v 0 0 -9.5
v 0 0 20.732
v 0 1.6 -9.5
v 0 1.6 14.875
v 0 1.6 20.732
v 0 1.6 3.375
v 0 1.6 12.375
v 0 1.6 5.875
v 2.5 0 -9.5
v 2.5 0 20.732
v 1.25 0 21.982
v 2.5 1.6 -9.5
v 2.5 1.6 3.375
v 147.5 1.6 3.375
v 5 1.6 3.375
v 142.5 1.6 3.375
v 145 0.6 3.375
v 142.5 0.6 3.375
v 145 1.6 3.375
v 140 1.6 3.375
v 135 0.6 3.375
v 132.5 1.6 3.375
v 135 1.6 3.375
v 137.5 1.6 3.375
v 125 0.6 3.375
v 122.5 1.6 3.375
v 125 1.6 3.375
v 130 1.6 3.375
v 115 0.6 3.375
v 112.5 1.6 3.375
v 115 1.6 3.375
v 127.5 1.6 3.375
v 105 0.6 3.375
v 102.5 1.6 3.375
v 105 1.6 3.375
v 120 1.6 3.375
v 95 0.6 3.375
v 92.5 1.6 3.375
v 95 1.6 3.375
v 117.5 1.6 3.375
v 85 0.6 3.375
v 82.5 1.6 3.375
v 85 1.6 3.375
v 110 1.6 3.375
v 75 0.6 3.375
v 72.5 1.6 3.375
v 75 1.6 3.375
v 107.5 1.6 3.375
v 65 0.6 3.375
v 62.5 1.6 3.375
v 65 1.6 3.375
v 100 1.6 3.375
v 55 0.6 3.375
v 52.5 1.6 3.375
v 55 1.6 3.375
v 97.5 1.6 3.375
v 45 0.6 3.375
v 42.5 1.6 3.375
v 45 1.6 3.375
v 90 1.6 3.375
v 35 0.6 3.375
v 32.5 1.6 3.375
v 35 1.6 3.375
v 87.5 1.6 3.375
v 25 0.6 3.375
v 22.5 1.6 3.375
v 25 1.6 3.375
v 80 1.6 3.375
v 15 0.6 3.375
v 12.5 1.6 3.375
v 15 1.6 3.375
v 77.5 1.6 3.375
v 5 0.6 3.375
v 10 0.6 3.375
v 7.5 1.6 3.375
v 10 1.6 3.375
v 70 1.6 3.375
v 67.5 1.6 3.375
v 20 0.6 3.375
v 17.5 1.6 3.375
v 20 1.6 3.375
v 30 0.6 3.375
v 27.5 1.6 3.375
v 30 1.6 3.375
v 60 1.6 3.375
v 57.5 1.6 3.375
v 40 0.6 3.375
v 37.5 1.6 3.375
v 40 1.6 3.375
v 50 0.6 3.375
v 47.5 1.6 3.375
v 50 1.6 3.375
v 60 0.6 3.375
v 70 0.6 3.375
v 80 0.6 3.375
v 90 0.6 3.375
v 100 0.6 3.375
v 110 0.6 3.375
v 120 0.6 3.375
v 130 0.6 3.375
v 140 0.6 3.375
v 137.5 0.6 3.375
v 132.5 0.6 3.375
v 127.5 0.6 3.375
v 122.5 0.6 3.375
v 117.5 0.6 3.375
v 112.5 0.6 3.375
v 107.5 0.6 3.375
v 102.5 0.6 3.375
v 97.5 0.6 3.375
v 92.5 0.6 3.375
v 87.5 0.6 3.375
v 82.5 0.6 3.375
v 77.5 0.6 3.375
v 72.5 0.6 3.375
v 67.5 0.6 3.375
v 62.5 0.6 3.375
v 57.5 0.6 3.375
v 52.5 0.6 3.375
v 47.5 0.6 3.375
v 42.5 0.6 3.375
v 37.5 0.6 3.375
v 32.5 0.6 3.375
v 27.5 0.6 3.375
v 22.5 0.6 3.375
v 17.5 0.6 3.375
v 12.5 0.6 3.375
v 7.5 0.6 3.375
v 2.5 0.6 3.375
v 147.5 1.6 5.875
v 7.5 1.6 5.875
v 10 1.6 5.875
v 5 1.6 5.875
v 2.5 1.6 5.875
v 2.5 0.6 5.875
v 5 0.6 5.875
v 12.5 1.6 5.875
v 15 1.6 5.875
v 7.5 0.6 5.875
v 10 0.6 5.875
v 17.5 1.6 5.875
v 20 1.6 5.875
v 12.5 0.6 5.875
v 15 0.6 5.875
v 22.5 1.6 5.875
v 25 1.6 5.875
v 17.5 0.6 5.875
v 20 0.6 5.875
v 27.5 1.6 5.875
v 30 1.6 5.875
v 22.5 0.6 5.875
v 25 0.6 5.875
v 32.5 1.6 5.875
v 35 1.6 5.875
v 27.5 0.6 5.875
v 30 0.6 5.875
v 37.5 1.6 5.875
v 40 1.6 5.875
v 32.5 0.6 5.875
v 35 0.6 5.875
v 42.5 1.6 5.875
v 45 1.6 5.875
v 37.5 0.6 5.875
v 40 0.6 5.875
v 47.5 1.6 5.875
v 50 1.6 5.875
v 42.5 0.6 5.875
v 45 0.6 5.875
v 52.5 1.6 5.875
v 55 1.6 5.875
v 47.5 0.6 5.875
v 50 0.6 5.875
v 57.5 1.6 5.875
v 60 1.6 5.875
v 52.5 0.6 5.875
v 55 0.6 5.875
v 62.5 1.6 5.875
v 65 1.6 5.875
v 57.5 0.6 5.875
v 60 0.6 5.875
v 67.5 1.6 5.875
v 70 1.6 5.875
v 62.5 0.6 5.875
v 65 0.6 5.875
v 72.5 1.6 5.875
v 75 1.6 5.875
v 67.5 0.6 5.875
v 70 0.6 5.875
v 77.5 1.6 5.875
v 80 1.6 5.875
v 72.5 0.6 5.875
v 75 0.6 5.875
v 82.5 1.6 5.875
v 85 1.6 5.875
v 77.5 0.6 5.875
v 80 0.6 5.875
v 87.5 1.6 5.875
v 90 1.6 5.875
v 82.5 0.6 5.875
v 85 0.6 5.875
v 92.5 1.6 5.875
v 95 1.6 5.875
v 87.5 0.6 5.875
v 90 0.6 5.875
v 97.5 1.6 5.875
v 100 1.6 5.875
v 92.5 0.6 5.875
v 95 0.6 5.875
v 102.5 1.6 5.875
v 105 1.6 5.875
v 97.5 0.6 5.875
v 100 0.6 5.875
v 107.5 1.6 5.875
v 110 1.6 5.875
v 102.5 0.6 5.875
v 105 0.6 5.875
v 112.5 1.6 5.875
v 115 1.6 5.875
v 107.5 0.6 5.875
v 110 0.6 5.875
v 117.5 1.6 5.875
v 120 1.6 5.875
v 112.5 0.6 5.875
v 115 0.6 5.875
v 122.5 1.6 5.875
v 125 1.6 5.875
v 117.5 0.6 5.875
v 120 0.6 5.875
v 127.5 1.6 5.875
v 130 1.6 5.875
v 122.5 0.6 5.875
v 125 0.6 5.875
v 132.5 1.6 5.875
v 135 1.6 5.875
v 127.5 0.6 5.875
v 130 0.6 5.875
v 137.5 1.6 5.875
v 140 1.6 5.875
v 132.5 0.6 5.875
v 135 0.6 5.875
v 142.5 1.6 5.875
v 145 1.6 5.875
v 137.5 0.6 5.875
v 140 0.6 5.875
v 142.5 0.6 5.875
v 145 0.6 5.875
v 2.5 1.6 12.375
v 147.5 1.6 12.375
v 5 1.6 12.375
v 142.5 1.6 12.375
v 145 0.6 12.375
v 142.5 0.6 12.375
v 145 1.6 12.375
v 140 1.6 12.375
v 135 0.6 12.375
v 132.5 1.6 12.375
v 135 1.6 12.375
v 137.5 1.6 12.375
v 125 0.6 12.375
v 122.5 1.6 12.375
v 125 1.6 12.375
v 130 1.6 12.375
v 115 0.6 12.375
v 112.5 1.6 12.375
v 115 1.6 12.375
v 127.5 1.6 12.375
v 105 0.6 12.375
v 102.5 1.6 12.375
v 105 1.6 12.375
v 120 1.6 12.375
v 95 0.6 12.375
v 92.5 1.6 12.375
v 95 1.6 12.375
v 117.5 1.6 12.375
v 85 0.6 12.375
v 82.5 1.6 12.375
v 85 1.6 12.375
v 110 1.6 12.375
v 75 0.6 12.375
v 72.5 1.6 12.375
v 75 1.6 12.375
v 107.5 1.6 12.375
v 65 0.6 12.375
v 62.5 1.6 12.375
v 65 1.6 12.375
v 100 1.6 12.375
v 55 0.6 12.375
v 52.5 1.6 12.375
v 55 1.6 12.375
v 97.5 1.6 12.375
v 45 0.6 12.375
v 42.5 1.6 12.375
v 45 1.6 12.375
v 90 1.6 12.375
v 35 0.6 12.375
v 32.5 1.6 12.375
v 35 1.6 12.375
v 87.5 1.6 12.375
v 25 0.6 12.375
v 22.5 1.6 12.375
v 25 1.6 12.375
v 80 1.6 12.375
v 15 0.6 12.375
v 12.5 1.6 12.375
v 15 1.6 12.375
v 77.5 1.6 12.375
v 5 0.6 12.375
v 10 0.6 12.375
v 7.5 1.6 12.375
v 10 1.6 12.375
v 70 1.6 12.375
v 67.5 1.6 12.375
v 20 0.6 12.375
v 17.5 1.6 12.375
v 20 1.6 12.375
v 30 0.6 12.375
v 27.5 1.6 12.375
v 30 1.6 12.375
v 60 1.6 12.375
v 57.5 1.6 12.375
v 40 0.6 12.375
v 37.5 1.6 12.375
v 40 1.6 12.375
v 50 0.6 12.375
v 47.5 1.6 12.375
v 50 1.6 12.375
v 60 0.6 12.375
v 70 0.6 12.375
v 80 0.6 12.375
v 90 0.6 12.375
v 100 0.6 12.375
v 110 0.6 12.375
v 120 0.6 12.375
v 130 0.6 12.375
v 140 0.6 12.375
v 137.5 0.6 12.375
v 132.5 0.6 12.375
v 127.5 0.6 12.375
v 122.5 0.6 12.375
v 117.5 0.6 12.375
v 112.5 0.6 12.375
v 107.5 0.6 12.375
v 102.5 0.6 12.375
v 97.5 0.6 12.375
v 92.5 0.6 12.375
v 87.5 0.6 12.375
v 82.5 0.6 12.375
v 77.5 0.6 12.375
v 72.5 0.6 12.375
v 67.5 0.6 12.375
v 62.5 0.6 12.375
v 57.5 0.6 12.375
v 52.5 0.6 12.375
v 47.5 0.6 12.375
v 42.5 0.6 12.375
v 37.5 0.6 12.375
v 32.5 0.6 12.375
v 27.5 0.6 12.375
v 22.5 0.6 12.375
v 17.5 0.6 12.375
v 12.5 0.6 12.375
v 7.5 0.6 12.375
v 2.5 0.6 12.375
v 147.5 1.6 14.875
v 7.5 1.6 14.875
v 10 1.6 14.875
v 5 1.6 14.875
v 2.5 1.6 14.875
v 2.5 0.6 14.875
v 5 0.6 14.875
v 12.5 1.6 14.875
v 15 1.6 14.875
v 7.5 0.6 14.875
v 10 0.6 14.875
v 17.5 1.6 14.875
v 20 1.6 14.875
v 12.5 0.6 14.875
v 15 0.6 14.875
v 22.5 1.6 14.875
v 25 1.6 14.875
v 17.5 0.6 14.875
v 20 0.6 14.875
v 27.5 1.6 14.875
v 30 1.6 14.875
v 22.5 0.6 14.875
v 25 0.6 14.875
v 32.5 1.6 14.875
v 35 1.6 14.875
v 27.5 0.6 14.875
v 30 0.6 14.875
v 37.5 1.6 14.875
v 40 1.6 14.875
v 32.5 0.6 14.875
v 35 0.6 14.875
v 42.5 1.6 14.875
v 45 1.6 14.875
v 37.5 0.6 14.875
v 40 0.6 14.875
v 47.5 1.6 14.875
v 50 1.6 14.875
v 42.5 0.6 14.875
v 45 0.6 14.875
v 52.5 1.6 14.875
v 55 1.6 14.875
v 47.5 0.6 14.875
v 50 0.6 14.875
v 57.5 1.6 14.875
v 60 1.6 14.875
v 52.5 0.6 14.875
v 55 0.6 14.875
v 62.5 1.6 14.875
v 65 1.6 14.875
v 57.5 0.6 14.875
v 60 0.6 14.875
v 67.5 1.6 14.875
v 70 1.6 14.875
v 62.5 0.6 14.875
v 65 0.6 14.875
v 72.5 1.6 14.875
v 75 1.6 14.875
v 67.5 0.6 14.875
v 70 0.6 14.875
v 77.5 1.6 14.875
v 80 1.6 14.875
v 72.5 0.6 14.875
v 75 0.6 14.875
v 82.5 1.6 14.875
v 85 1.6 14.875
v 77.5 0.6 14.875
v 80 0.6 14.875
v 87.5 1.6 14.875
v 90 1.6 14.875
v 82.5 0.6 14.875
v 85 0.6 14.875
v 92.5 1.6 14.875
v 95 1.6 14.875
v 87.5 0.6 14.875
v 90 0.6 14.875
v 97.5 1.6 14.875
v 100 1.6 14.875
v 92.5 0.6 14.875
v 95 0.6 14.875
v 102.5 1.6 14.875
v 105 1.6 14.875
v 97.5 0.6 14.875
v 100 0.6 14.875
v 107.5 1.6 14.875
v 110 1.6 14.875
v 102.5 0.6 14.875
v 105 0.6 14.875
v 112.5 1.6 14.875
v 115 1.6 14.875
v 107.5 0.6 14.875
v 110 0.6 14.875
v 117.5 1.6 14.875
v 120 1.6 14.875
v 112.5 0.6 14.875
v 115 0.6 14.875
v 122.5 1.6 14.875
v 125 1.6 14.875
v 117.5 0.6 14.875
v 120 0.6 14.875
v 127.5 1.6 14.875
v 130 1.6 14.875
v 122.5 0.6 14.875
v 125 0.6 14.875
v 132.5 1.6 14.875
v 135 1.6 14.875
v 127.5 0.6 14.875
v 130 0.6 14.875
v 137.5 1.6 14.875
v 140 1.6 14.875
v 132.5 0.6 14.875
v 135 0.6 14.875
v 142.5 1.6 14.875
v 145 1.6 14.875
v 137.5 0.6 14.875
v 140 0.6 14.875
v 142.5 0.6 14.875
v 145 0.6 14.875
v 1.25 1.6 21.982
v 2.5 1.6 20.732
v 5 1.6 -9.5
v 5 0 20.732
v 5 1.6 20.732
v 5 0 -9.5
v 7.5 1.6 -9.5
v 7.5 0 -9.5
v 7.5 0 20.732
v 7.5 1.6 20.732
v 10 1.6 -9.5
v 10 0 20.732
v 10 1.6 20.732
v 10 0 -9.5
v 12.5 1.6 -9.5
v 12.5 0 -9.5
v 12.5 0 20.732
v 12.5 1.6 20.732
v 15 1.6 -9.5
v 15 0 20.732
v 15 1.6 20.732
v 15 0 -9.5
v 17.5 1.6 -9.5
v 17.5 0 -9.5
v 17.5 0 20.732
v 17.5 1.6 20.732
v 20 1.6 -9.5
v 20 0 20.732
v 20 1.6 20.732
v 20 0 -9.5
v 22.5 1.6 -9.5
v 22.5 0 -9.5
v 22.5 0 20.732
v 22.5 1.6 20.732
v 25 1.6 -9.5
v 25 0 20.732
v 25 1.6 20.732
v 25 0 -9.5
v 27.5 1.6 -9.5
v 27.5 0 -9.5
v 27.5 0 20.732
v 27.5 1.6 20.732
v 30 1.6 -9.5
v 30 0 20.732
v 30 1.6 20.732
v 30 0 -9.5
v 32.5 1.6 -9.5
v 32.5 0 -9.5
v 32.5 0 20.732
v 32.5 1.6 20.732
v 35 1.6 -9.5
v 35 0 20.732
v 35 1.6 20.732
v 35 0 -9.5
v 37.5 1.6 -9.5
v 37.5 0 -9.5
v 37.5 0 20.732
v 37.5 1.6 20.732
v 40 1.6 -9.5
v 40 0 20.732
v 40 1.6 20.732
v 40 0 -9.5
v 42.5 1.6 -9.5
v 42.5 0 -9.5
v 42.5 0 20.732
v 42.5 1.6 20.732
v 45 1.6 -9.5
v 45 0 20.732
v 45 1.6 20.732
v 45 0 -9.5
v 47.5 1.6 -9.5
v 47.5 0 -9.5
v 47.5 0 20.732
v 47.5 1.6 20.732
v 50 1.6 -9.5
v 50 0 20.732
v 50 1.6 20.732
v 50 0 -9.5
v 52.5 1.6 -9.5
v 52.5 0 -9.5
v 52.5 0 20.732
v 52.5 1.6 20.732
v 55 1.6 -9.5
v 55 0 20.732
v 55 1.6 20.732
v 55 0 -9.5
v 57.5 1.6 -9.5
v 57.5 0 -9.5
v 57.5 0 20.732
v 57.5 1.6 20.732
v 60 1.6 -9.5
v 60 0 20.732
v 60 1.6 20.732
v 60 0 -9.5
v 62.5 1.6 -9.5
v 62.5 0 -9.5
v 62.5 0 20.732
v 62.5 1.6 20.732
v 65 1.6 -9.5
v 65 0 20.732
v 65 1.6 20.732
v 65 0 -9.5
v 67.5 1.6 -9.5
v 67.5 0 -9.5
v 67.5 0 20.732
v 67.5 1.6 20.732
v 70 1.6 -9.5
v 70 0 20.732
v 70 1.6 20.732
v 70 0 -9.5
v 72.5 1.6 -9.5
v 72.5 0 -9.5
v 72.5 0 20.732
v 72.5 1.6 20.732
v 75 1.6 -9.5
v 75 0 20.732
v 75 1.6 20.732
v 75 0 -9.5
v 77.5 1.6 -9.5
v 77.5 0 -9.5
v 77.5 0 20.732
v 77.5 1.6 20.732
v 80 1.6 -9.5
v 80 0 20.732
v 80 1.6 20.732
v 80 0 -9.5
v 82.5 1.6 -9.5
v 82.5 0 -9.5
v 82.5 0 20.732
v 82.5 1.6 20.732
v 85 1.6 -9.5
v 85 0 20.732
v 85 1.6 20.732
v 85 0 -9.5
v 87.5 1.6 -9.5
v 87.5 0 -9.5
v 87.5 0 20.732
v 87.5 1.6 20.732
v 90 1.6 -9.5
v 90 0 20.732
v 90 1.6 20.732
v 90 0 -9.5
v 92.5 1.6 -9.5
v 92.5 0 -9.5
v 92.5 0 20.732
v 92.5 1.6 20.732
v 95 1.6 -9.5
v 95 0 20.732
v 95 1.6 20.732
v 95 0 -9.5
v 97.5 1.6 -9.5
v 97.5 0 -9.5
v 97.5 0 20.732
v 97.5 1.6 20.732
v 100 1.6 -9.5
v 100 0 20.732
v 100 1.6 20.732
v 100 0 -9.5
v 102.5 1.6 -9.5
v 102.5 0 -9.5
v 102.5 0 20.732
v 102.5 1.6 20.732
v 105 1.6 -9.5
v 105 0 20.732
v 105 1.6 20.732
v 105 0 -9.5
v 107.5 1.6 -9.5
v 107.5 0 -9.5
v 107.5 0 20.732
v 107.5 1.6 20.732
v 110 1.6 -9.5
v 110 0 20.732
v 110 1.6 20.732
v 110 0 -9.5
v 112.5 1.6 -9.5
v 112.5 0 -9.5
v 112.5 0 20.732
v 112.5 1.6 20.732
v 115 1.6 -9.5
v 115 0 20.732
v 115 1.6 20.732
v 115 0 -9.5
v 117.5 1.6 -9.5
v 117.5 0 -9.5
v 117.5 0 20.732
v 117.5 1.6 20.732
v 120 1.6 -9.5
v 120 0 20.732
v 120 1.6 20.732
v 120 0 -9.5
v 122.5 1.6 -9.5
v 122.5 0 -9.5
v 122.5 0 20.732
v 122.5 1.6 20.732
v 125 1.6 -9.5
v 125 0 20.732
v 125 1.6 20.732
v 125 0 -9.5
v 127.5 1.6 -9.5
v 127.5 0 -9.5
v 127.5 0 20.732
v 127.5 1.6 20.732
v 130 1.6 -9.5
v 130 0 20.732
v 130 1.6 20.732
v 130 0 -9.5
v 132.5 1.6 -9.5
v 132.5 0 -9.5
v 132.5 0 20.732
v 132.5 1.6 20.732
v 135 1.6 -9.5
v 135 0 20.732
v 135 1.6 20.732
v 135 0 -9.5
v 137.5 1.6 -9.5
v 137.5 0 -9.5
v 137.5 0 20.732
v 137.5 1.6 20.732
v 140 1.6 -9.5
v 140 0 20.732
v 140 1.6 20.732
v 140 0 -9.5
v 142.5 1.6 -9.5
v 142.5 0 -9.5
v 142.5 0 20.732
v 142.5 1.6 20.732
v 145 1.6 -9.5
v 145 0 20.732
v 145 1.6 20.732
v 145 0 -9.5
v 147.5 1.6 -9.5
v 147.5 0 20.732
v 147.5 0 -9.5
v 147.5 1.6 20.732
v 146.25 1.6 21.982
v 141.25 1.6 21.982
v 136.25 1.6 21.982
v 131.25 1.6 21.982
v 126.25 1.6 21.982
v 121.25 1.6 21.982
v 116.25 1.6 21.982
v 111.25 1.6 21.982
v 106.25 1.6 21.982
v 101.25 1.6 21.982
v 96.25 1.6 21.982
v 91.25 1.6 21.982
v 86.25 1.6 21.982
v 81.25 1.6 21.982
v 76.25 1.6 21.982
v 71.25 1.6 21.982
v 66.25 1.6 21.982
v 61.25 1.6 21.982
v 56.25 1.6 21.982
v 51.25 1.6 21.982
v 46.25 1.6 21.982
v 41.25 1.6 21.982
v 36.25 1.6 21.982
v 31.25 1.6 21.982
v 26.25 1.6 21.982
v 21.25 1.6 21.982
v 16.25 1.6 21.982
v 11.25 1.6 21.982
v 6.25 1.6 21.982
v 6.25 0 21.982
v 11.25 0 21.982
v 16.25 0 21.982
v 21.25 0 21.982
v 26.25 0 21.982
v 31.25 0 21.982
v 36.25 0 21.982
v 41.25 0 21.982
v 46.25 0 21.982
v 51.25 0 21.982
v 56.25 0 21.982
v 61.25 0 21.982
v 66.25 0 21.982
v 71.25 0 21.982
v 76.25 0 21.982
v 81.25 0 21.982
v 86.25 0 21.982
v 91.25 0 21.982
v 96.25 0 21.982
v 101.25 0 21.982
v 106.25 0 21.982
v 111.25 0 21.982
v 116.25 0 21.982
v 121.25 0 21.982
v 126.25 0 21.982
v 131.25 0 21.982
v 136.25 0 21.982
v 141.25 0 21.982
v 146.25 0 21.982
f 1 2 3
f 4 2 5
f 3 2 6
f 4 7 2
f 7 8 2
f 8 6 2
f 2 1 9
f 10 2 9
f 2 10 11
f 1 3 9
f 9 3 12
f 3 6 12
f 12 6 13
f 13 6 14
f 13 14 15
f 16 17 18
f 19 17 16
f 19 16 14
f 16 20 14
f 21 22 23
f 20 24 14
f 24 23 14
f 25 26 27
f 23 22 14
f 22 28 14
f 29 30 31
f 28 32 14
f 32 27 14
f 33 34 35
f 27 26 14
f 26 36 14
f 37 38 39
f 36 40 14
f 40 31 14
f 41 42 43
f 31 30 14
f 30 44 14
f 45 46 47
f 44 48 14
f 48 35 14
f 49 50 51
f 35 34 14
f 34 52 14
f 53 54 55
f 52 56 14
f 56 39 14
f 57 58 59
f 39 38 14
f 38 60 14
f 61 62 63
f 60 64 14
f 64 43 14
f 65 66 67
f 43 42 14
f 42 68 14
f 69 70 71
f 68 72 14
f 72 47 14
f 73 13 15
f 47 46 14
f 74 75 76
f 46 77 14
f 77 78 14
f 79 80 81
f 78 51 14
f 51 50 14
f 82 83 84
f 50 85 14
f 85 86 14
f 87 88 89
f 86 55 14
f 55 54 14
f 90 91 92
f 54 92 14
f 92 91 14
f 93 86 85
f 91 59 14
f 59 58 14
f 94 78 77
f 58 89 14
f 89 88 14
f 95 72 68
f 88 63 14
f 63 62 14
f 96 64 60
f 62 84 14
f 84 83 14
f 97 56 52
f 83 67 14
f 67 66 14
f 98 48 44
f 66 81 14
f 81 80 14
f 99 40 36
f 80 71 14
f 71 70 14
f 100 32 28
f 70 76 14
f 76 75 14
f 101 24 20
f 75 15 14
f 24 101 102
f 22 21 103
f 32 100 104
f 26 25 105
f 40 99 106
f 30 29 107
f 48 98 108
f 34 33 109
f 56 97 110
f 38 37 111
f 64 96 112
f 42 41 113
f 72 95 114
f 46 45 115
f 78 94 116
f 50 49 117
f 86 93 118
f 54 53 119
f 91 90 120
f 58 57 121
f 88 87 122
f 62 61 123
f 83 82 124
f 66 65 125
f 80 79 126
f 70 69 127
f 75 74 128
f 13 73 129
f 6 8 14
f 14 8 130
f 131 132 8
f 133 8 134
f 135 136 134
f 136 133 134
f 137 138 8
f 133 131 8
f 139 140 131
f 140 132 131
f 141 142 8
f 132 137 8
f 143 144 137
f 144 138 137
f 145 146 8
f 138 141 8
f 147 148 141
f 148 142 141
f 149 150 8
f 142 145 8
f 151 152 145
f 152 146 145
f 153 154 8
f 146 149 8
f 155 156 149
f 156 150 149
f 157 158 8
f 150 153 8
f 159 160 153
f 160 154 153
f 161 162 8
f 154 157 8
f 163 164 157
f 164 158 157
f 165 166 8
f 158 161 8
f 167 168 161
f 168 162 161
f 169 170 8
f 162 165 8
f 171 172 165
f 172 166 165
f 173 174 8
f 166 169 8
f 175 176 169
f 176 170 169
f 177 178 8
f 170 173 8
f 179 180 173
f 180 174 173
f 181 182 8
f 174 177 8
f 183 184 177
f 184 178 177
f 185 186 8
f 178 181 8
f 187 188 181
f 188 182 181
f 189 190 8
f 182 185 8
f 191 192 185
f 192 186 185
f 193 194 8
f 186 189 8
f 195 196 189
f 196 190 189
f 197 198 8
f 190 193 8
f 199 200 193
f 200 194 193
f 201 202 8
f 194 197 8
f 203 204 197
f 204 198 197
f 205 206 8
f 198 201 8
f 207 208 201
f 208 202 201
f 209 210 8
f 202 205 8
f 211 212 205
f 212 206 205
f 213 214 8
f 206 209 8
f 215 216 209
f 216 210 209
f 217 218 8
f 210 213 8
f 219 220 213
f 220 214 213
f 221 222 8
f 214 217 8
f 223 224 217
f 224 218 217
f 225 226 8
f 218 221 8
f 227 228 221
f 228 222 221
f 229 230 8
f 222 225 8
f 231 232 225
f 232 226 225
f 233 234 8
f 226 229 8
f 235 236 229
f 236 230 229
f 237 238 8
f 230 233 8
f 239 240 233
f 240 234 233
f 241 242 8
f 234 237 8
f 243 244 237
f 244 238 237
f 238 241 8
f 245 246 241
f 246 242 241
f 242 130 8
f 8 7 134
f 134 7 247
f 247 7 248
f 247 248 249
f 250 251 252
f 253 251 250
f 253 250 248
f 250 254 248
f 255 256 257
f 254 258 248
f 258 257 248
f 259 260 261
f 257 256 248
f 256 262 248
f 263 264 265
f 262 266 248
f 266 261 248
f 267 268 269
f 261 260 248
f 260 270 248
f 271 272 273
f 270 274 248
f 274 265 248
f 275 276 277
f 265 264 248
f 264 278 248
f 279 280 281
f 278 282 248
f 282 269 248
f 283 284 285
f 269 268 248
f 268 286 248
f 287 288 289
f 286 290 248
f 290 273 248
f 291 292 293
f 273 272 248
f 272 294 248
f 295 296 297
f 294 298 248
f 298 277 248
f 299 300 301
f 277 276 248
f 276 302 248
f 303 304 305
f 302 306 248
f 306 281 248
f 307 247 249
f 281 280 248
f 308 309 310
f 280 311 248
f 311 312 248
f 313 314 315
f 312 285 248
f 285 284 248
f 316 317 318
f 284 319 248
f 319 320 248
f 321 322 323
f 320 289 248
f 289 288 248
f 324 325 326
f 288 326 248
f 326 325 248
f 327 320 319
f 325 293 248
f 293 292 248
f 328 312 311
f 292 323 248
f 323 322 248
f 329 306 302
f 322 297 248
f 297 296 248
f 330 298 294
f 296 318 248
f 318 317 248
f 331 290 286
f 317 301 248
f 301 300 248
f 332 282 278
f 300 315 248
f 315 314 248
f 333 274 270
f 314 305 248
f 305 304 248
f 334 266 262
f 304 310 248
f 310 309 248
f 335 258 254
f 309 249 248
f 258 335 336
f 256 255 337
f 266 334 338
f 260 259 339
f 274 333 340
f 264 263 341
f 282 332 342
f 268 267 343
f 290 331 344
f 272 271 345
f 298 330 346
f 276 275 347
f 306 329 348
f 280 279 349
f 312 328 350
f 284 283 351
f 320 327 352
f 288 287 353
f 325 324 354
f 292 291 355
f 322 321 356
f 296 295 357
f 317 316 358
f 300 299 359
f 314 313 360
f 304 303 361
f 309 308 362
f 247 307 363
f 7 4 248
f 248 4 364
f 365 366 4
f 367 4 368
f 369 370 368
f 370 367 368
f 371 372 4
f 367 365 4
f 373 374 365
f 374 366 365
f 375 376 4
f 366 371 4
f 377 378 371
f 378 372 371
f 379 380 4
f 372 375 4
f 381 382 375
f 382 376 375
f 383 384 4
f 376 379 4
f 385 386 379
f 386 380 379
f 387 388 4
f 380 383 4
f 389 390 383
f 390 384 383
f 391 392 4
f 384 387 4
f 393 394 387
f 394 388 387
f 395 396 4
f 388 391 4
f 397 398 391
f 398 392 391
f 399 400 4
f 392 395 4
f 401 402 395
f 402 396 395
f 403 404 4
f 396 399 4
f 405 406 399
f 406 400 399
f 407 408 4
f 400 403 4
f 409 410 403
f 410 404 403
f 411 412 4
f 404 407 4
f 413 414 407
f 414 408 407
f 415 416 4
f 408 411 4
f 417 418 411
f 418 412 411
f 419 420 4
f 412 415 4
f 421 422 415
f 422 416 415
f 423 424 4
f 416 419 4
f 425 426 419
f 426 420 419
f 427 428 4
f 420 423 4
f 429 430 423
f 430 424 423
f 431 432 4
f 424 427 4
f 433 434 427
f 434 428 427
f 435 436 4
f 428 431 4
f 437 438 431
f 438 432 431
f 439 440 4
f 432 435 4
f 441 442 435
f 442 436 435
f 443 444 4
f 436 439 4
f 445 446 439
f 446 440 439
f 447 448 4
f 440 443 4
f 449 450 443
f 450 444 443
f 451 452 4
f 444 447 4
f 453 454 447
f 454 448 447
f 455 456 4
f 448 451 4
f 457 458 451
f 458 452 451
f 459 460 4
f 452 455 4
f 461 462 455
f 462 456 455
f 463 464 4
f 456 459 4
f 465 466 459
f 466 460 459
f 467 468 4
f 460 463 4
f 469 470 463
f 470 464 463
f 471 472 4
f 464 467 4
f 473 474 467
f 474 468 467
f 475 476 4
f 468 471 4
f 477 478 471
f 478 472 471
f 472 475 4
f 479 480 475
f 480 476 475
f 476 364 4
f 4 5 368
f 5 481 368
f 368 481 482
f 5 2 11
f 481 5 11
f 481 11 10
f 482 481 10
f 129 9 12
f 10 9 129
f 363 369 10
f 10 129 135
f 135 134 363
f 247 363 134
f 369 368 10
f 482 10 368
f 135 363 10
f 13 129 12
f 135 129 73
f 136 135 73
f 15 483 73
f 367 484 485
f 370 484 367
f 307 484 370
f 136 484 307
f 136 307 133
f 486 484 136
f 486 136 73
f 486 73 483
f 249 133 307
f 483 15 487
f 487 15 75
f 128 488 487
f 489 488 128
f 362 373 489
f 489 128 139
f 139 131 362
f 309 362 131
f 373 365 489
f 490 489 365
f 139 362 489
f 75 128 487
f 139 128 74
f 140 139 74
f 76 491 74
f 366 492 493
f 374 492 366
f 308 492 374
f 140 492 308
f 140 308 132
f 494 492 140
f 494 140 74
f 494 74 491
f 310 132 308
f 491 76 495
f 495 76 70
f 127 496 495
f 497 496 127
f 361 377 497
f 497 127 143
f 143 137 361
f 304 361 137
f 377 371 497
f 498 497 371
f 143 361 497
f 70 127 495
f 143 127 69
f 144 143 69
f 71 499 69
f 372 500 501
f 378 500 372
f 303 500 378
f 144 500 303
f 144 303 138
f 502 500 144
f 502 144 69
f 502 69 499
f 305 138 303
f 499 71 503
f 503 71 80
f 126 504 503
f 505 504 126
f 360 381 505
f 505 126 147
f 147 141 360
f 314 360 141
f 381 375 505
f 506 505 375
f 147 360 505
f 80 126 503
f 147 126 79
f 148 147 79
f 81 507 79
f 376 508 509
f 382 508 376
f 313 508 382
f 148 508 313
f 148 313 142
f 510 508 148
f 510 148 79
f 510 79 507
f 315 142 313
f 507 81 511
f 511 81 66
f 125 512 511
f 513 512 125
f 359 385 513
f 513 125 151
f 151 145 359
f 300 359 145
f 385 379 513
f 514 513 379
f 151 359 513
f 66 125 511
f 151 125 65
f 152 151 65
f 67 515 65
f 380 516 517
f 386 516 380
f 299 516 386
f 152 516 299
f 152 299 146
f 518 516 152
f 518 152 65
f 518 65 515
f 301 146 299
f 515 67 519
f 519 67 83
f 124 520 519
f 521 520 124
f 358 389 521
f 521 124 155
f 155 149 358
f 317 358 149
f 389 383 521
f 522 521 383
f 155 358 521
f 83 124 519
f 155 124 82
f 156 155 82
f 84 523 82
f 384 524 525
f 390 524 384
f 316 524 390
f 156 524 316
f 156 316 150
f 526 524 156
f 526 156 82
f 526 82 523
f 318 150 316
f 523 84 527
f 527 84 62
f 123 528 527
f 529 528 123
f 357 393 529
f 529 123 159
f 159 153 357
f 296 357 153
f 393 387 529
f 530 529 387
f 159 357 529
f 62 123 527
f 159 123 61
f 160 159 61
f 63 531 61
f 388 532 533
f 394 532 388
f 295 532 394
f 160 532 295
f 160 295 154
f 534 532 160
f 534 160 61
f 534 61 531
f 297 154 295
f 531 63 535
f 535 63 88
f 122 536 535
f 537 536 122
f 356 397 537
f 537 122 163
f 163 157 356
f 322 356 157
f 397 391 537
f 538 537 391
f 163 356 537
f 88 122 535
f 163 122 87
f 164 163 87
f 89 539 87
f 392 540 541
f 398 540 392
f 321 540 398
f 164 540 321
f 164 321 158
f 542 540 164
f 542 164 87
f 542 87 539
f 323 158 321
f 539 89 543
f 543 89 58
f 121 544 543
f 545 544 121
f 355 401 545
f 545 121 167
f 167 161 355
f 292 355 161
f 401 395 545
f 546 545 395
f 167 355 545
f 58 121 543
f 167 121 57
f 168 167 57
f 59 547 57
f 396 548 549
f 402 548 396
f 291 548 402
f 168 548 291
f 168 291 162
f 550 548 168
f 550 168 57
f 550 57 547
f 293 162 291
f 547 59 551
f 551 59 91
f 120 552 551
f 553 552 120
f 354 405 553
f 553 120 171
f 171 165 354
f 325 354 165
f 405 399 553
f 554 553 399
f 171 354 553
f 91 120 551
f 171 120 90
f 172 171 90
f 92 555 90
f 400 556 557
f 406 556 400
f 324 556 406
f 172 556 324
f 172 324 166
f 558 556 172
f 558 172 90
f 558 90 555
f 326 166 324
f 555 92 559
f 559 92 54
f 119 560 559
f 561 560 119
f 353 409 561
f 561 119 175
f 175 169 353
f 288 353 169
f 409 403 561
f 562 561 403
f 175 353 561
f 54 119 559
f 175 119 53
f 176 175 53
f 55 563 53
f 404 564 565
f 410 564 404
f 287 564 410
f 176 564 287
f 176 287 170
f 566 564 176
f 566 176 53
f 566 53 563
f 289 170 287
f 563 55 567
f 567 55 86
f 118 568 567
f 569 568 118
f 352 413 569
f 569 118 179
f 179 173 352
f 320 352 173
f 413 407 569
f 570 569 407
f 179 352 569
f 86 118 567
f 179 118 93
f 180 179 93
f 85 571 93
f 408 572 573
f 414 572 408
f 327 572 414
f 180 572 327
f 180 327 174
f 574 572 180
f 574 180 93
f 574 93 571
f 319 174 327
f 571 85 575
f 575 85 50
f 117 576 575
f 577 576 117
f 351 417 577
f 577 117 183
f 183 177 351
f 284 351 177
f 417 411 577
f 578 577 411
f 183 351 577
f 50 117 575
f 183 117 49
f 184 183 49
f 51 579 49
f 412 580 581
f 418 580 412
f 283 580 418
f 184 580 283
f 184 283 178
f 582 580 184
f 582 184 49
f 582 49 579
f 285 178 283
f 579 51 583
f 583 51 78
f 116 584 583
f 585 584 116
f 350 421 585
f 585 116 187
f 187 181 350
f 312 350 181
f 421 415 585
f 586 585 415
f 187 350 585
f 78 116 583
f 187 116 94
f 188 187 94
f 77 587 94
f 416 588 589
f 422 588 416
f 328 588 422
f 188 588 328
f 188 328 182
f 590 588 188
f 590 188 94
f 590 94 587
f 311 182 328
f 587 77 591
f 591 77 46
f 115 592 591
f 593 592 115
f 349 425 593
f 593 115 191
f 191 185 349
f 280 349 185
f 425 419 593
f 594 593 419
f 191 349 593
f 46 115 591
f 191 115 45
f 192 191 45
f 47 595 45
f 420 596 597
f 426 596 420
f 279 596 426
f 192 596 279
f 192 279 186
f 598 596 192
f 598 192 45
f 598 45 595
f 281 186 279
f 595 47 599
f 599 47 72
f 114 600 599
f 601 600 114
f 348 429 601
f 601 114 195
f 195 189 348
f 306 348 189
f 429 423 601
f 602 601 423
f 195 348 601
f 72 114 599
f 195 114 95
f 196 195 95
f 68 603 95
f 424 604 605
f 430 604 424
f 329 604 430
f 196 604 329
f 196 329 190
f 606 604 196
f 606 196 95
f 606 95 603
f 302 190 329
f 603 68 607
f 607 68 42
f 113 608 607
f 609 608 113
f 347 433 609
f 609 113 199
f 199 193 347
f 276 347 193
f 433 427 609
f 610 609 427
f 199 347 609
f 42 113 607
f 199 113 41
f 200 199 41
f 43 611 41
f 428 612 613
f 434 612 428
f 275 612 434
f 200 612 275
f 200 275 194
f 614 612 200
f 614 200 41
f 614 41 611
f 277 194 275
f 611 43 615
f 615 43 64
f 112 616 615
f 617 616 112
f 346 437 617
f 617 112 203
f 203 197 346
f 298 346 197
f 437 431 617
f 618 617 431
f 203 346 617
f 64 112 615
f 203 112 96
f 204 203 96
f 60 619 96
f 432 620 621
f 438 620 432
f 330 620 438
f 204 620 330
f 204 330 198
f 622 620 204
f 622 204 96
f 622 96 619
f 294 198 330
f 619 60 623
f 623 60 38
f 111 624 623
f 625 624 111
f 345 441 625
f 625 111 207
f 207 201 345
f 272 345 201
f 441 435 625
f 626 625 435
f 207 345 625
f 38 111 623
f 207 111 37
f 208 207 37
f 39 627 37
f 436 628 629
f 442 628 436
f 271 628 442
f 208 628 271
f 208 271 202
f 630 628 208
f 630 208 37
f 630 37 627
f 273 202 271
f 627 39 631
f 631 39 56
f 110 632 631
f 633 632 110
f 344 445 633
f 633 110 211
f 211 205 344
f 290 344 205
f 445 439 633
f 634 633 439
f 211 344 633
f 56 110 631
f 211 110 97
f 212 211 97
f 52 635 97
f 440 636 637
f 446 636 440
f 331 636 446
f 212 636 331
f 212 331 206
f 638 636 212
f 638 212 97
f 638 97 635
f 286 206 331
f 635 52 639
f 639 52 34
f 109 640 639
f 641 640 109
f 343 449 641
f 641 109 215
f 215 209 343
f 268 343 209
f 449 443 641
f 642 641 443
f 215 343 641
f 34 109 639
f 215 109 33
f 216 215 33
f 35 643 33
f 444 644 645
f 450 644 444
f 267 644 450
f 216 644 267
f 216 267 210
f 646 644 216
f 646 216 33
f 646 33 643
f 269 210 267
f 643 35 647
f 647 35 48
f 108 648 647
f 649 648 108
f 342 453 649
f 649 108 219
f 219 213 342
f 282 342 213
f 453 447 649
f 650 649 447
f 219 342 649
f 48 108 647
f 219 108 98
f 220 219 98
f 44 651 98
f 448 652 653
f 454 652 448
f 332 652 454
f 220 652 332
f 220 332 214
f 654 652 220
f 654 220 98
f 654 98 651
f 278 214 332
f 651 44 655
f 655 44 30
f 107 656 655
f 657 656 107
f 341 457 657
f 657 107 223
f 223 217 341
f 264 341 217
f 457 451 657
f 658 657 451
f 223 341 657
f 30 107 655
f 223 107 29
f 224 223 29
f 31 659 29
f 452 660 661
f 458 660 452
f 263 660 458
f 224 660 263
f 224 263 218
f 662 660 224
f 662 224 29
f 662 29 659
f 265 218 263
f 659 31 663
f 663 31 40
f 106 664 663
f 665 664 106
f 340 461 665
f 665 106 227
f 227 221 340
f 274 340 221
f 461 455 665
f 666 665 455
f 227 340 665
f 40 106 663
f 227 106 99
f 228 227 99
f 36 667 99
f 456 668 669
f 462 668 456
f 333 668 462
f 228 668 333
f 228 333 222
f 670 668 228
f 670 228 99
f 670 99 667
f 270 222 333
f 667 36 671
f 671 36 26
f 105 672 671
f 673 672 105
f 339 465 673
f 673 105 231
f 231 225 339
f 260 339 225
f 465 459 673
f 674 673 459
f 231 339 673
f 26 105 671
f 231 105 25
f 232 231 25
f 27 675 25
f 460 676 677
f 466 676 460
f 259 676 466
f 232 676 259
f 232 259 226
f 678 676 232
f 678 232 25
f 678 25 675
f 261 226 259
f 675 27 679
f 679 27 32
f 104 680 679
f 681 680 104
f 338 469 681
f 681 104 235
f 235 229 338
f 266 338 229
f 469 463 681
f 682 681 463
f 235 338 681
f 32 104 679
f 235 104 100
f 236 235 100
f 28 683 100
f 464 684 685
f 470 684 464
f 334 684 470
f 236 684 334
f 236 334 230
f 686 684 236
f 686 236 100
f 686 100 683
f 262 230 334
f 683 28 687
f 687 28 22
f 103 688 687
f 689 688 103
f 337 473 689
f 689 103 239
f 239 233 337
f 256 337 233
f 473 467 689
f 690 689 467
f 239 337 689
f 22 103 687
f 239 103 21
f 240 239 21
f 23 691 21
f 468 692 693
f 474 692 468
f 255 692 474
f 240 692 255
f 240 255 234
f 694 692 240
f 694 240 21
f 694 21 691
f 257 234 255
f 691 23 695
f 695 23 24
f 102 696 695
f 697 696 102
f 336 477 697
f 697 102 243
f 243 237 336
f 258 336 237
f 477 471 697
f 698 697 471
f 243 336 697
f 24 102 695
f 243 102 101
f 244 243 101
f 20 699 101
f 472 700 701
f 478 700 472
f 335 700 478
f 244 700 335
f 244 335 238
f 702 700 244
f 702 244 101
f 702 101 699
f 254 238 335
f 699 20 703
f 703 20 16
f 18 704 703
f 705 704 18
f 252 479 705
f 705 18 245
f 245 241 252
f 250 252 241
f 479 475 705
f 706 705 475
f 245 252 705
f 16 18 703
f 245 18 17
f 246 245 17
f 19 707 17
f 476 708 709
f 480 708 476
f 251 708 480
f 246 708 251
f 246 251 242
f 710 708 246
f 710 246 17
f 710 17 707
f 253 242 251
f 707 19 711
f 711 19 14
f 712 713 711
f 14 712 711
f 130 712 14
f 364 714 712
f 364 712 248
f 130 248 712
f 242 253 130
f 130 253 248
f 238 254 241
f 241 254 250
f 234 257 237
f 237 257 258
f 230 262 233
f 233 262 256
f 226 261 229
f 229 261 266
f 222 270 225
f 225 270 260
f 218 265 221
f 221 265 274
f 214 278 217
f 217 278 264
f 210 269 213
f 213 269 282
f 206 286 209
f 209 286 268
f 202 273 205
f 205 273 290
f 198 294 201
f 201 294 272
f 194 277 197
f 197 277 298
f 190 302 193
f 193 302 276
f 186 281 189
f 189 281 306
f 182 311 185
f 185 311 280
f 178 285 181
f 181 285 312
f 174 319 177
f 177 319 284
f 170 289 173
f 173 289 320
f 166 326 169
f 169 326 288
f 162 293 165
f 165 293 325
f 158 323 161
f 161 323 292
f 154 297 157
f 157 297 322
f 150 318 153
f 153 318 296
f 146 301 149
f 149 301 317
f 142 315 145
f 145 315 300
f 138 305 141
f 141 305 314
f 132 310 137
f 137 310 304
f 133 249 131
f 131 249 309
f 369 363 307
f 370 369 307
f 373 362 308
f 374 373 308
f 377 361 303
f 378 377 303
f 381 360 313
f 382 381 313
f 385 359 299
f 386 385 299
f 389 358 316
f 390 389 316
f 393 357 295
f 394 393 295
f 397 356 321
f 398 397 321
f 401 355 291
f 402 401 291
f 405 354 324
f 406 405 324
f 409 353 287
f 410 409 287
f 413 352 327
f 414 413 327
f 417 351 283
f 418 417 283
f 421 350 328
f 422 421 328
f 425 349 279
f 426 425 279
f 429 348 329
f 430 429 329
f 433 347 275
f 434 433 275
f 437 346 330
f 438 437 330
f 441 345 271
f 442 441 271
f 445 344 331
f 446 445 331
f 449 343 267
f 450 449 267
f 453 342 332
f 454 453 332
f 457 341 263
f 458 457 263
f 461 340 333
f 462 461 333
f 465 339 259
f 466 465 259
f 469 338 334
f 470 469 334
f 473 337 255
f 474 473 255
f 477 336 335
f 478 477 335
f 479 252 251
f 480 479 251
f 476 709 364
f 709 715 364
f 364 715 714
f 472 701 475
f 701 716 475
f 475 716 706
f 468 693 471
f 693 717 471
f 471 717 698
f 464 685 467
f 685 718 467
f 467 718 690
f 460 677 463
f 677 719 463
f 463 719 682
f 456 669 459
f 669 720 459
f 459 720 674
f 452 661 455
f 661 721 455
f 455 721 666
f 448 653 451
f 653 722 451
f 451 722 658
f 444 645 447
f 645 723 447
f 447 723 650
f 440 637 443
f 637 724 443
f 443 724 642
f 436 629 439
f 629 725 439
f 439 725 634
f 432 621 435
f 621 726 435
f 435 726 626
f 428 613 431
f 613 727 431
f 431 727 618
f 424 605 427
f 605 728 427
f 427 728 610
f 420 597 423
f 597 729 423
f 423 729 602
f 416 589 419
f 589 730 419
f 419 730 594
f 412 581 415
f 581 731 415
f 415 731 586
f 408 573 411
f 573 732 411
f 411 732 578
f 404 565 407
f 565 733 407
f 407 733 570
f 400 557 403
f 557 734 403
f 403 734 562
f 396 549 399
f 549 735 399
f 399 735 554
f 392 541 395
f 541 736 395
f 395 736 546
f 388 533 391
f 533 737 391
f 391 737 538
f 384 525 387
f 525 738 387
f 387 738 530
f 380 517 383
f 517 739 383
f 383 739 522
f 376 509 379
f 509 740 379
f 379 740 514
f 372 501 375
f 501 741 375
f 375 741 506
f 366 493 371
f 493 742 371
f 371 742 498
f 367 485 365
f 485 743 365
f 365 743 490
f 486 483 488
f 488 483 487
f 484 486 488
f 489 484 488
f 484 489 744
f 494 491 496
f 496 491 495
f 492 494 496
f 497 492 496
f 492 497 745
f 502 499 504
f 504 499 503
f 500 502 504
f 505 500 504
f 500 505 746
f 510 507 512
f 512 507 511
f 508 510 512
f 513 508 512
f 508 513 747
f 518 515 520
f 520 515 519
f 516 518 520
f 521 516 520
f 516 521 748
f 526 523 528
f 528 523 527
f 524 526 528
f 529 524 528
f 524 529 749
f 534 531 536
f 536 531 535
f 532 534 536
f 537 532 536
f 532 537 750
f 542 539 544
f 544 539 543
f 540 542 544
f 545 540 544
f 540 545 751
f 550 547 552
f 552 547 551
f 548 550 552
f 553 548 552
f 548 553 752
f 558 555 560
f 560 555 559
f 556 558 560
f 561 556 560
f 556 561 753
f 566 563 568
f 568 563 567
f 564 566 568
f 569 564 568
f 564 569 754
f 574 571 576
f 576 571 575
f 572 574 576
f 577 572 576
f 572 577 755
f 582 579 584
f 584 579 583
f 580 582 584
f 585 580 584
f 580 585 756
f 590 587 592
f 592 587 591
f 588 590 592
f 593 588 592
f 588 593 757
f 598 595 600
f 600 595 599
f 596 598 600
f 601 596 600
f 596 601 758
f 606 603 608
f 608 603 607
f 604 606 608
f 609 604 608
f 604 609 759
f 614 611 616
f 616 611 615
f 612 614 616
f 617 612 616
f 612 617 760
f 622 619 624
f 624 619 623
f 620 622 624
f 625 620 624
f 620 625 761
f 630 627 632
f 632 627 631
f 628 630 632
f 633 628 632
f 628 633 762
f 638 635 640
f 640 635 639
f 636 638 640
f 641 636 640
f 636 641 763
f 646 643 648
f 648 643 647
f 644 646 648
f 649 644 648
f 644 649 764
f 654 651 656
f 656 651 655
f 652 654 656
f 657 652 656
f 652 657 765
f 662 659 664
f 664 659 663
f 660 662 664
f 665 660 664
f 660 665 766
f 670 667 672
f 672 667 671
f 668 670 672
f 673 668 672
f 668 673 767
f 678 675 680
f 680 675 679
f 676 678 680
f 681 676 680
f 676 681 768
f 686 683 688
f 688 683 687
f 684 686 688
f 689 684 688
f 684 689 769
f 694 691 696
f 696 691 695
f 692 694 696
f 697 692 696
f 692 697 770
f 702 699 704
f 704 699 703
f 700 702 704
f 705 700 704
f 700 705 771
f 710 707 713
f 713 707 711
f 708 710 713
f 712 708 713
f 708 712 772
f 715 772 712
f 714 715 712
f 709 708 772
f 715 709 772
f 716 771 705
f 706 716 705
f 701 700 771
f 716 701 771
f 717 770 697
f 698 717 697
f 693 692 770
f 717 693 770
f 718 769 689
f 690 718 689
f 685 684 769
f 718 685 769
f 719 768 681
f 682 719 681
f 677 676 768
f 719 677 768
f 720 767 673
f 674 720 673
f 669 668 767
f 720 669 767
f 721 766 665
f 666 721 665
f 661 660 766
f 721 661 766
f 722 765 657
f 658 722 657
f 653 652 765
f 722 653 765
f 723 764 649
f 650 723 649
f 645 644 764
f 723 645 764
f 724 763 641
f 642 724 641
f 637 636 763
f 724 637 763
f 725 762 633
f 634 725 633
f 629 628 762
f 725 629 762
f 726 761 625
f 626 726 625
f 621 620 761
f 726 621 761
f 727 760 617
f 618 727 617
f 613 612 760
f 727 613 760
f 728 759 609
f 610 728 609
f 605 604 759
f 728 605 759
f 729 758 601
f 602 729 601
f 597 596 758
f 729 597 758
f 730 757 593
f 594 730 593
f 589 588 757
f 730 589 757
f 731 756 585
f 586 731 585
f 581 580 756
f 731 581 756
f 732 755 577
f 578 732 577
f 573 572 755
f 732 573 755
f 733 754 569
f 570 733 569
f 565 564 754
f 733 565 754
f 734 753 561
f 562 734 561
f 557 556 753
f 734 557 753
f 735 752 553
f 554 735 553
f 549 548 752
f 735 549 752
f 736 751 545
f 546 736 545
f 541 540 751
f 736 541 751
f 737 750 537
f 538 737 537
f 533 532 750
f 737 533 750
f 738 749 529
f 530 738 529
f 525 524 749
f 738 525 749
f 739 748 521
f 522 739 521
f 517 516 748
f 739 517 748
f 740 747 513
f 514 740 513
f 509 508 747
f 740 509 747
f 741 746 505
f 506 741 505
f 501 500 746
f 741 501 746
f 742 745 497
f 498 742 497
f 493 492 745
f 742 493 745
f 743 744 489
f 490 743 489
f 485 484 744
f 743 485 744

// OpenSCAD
// Jesper stl fence

staff_thickness = 1.6;
// The holder is the horizontal parts.
holder_thickness = 1.0;
staff_width = 2.5;
staff_spacing = 2.5;
top_vertical_percent = 55;
bottom_vertical_percent = 15;

// Support is below fence...
support_height = 10;

target_length = 150;
target_height = 22.5;

pad=0.5;

// Calculated constants
section_width = staff_width + staff_spacing;
number_of_staffs = floor( target_length / section_width );
total_length = number_of_staffs * ( staff_width + staff_spacing ) - staff_spacing;

module staff() {
    // The staff top
    translate([0,0,target_height-staff_width/sqrt(2)])
    rotate([0,45,0])
    cube([staff_width/sqrt(2),staff_thickness, staff_width/sqrt(2)]);
    // The staff bottom
    cube([staff_width, staff_thickness, target_height-staff_width/sqrt(2)]);
    // Stuff to insert into the ground
    translate([0,0,-support_height + pad])
    cube([staff_width, staff_thickness, support_height]);
}

// The horizontal holders.
module holder() {
    translate([0, staff_thickness-holder_thickness, target_height*top_vertical_percent/100])
    cube([total_length, holder_thickness, staff_width]);
    translate([0, staff_thickness-holder_thickness, target_height*bottom_vertical_percent/100])
    cube([total_length, holder_thickness, staff_width]);
}


module fence() {
    for ( i = [ 0 : 1 : number_of_staffs -1 ] ) {
        translate([i * section_width, 0, 0])
        staff();
    }
    holder();
}


fence();
